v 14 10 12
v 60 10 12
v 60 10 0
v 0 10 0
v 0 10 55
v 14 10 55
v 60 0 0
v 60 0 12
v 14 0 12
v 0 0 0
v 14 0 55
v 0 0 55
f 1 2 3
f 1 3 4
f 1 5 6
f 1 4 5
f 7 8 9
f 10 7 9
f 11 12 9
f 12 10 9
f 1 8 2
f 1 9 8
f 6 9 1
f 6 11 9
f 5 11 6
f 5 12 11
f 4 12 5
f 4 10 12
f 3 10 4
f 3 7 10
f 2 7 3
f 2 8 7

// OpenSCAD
// Wall hook: L profile in XZ (60 toe, 55 back), 10 thick along Y, flat back on bed.
translate([0,10,0]) rotate([90,0,0])
  linear_extrude(height=10) {
    polygon([[0,0],[60,0],[60,12],[14,12],[14,55],[0,55]]);
  }
